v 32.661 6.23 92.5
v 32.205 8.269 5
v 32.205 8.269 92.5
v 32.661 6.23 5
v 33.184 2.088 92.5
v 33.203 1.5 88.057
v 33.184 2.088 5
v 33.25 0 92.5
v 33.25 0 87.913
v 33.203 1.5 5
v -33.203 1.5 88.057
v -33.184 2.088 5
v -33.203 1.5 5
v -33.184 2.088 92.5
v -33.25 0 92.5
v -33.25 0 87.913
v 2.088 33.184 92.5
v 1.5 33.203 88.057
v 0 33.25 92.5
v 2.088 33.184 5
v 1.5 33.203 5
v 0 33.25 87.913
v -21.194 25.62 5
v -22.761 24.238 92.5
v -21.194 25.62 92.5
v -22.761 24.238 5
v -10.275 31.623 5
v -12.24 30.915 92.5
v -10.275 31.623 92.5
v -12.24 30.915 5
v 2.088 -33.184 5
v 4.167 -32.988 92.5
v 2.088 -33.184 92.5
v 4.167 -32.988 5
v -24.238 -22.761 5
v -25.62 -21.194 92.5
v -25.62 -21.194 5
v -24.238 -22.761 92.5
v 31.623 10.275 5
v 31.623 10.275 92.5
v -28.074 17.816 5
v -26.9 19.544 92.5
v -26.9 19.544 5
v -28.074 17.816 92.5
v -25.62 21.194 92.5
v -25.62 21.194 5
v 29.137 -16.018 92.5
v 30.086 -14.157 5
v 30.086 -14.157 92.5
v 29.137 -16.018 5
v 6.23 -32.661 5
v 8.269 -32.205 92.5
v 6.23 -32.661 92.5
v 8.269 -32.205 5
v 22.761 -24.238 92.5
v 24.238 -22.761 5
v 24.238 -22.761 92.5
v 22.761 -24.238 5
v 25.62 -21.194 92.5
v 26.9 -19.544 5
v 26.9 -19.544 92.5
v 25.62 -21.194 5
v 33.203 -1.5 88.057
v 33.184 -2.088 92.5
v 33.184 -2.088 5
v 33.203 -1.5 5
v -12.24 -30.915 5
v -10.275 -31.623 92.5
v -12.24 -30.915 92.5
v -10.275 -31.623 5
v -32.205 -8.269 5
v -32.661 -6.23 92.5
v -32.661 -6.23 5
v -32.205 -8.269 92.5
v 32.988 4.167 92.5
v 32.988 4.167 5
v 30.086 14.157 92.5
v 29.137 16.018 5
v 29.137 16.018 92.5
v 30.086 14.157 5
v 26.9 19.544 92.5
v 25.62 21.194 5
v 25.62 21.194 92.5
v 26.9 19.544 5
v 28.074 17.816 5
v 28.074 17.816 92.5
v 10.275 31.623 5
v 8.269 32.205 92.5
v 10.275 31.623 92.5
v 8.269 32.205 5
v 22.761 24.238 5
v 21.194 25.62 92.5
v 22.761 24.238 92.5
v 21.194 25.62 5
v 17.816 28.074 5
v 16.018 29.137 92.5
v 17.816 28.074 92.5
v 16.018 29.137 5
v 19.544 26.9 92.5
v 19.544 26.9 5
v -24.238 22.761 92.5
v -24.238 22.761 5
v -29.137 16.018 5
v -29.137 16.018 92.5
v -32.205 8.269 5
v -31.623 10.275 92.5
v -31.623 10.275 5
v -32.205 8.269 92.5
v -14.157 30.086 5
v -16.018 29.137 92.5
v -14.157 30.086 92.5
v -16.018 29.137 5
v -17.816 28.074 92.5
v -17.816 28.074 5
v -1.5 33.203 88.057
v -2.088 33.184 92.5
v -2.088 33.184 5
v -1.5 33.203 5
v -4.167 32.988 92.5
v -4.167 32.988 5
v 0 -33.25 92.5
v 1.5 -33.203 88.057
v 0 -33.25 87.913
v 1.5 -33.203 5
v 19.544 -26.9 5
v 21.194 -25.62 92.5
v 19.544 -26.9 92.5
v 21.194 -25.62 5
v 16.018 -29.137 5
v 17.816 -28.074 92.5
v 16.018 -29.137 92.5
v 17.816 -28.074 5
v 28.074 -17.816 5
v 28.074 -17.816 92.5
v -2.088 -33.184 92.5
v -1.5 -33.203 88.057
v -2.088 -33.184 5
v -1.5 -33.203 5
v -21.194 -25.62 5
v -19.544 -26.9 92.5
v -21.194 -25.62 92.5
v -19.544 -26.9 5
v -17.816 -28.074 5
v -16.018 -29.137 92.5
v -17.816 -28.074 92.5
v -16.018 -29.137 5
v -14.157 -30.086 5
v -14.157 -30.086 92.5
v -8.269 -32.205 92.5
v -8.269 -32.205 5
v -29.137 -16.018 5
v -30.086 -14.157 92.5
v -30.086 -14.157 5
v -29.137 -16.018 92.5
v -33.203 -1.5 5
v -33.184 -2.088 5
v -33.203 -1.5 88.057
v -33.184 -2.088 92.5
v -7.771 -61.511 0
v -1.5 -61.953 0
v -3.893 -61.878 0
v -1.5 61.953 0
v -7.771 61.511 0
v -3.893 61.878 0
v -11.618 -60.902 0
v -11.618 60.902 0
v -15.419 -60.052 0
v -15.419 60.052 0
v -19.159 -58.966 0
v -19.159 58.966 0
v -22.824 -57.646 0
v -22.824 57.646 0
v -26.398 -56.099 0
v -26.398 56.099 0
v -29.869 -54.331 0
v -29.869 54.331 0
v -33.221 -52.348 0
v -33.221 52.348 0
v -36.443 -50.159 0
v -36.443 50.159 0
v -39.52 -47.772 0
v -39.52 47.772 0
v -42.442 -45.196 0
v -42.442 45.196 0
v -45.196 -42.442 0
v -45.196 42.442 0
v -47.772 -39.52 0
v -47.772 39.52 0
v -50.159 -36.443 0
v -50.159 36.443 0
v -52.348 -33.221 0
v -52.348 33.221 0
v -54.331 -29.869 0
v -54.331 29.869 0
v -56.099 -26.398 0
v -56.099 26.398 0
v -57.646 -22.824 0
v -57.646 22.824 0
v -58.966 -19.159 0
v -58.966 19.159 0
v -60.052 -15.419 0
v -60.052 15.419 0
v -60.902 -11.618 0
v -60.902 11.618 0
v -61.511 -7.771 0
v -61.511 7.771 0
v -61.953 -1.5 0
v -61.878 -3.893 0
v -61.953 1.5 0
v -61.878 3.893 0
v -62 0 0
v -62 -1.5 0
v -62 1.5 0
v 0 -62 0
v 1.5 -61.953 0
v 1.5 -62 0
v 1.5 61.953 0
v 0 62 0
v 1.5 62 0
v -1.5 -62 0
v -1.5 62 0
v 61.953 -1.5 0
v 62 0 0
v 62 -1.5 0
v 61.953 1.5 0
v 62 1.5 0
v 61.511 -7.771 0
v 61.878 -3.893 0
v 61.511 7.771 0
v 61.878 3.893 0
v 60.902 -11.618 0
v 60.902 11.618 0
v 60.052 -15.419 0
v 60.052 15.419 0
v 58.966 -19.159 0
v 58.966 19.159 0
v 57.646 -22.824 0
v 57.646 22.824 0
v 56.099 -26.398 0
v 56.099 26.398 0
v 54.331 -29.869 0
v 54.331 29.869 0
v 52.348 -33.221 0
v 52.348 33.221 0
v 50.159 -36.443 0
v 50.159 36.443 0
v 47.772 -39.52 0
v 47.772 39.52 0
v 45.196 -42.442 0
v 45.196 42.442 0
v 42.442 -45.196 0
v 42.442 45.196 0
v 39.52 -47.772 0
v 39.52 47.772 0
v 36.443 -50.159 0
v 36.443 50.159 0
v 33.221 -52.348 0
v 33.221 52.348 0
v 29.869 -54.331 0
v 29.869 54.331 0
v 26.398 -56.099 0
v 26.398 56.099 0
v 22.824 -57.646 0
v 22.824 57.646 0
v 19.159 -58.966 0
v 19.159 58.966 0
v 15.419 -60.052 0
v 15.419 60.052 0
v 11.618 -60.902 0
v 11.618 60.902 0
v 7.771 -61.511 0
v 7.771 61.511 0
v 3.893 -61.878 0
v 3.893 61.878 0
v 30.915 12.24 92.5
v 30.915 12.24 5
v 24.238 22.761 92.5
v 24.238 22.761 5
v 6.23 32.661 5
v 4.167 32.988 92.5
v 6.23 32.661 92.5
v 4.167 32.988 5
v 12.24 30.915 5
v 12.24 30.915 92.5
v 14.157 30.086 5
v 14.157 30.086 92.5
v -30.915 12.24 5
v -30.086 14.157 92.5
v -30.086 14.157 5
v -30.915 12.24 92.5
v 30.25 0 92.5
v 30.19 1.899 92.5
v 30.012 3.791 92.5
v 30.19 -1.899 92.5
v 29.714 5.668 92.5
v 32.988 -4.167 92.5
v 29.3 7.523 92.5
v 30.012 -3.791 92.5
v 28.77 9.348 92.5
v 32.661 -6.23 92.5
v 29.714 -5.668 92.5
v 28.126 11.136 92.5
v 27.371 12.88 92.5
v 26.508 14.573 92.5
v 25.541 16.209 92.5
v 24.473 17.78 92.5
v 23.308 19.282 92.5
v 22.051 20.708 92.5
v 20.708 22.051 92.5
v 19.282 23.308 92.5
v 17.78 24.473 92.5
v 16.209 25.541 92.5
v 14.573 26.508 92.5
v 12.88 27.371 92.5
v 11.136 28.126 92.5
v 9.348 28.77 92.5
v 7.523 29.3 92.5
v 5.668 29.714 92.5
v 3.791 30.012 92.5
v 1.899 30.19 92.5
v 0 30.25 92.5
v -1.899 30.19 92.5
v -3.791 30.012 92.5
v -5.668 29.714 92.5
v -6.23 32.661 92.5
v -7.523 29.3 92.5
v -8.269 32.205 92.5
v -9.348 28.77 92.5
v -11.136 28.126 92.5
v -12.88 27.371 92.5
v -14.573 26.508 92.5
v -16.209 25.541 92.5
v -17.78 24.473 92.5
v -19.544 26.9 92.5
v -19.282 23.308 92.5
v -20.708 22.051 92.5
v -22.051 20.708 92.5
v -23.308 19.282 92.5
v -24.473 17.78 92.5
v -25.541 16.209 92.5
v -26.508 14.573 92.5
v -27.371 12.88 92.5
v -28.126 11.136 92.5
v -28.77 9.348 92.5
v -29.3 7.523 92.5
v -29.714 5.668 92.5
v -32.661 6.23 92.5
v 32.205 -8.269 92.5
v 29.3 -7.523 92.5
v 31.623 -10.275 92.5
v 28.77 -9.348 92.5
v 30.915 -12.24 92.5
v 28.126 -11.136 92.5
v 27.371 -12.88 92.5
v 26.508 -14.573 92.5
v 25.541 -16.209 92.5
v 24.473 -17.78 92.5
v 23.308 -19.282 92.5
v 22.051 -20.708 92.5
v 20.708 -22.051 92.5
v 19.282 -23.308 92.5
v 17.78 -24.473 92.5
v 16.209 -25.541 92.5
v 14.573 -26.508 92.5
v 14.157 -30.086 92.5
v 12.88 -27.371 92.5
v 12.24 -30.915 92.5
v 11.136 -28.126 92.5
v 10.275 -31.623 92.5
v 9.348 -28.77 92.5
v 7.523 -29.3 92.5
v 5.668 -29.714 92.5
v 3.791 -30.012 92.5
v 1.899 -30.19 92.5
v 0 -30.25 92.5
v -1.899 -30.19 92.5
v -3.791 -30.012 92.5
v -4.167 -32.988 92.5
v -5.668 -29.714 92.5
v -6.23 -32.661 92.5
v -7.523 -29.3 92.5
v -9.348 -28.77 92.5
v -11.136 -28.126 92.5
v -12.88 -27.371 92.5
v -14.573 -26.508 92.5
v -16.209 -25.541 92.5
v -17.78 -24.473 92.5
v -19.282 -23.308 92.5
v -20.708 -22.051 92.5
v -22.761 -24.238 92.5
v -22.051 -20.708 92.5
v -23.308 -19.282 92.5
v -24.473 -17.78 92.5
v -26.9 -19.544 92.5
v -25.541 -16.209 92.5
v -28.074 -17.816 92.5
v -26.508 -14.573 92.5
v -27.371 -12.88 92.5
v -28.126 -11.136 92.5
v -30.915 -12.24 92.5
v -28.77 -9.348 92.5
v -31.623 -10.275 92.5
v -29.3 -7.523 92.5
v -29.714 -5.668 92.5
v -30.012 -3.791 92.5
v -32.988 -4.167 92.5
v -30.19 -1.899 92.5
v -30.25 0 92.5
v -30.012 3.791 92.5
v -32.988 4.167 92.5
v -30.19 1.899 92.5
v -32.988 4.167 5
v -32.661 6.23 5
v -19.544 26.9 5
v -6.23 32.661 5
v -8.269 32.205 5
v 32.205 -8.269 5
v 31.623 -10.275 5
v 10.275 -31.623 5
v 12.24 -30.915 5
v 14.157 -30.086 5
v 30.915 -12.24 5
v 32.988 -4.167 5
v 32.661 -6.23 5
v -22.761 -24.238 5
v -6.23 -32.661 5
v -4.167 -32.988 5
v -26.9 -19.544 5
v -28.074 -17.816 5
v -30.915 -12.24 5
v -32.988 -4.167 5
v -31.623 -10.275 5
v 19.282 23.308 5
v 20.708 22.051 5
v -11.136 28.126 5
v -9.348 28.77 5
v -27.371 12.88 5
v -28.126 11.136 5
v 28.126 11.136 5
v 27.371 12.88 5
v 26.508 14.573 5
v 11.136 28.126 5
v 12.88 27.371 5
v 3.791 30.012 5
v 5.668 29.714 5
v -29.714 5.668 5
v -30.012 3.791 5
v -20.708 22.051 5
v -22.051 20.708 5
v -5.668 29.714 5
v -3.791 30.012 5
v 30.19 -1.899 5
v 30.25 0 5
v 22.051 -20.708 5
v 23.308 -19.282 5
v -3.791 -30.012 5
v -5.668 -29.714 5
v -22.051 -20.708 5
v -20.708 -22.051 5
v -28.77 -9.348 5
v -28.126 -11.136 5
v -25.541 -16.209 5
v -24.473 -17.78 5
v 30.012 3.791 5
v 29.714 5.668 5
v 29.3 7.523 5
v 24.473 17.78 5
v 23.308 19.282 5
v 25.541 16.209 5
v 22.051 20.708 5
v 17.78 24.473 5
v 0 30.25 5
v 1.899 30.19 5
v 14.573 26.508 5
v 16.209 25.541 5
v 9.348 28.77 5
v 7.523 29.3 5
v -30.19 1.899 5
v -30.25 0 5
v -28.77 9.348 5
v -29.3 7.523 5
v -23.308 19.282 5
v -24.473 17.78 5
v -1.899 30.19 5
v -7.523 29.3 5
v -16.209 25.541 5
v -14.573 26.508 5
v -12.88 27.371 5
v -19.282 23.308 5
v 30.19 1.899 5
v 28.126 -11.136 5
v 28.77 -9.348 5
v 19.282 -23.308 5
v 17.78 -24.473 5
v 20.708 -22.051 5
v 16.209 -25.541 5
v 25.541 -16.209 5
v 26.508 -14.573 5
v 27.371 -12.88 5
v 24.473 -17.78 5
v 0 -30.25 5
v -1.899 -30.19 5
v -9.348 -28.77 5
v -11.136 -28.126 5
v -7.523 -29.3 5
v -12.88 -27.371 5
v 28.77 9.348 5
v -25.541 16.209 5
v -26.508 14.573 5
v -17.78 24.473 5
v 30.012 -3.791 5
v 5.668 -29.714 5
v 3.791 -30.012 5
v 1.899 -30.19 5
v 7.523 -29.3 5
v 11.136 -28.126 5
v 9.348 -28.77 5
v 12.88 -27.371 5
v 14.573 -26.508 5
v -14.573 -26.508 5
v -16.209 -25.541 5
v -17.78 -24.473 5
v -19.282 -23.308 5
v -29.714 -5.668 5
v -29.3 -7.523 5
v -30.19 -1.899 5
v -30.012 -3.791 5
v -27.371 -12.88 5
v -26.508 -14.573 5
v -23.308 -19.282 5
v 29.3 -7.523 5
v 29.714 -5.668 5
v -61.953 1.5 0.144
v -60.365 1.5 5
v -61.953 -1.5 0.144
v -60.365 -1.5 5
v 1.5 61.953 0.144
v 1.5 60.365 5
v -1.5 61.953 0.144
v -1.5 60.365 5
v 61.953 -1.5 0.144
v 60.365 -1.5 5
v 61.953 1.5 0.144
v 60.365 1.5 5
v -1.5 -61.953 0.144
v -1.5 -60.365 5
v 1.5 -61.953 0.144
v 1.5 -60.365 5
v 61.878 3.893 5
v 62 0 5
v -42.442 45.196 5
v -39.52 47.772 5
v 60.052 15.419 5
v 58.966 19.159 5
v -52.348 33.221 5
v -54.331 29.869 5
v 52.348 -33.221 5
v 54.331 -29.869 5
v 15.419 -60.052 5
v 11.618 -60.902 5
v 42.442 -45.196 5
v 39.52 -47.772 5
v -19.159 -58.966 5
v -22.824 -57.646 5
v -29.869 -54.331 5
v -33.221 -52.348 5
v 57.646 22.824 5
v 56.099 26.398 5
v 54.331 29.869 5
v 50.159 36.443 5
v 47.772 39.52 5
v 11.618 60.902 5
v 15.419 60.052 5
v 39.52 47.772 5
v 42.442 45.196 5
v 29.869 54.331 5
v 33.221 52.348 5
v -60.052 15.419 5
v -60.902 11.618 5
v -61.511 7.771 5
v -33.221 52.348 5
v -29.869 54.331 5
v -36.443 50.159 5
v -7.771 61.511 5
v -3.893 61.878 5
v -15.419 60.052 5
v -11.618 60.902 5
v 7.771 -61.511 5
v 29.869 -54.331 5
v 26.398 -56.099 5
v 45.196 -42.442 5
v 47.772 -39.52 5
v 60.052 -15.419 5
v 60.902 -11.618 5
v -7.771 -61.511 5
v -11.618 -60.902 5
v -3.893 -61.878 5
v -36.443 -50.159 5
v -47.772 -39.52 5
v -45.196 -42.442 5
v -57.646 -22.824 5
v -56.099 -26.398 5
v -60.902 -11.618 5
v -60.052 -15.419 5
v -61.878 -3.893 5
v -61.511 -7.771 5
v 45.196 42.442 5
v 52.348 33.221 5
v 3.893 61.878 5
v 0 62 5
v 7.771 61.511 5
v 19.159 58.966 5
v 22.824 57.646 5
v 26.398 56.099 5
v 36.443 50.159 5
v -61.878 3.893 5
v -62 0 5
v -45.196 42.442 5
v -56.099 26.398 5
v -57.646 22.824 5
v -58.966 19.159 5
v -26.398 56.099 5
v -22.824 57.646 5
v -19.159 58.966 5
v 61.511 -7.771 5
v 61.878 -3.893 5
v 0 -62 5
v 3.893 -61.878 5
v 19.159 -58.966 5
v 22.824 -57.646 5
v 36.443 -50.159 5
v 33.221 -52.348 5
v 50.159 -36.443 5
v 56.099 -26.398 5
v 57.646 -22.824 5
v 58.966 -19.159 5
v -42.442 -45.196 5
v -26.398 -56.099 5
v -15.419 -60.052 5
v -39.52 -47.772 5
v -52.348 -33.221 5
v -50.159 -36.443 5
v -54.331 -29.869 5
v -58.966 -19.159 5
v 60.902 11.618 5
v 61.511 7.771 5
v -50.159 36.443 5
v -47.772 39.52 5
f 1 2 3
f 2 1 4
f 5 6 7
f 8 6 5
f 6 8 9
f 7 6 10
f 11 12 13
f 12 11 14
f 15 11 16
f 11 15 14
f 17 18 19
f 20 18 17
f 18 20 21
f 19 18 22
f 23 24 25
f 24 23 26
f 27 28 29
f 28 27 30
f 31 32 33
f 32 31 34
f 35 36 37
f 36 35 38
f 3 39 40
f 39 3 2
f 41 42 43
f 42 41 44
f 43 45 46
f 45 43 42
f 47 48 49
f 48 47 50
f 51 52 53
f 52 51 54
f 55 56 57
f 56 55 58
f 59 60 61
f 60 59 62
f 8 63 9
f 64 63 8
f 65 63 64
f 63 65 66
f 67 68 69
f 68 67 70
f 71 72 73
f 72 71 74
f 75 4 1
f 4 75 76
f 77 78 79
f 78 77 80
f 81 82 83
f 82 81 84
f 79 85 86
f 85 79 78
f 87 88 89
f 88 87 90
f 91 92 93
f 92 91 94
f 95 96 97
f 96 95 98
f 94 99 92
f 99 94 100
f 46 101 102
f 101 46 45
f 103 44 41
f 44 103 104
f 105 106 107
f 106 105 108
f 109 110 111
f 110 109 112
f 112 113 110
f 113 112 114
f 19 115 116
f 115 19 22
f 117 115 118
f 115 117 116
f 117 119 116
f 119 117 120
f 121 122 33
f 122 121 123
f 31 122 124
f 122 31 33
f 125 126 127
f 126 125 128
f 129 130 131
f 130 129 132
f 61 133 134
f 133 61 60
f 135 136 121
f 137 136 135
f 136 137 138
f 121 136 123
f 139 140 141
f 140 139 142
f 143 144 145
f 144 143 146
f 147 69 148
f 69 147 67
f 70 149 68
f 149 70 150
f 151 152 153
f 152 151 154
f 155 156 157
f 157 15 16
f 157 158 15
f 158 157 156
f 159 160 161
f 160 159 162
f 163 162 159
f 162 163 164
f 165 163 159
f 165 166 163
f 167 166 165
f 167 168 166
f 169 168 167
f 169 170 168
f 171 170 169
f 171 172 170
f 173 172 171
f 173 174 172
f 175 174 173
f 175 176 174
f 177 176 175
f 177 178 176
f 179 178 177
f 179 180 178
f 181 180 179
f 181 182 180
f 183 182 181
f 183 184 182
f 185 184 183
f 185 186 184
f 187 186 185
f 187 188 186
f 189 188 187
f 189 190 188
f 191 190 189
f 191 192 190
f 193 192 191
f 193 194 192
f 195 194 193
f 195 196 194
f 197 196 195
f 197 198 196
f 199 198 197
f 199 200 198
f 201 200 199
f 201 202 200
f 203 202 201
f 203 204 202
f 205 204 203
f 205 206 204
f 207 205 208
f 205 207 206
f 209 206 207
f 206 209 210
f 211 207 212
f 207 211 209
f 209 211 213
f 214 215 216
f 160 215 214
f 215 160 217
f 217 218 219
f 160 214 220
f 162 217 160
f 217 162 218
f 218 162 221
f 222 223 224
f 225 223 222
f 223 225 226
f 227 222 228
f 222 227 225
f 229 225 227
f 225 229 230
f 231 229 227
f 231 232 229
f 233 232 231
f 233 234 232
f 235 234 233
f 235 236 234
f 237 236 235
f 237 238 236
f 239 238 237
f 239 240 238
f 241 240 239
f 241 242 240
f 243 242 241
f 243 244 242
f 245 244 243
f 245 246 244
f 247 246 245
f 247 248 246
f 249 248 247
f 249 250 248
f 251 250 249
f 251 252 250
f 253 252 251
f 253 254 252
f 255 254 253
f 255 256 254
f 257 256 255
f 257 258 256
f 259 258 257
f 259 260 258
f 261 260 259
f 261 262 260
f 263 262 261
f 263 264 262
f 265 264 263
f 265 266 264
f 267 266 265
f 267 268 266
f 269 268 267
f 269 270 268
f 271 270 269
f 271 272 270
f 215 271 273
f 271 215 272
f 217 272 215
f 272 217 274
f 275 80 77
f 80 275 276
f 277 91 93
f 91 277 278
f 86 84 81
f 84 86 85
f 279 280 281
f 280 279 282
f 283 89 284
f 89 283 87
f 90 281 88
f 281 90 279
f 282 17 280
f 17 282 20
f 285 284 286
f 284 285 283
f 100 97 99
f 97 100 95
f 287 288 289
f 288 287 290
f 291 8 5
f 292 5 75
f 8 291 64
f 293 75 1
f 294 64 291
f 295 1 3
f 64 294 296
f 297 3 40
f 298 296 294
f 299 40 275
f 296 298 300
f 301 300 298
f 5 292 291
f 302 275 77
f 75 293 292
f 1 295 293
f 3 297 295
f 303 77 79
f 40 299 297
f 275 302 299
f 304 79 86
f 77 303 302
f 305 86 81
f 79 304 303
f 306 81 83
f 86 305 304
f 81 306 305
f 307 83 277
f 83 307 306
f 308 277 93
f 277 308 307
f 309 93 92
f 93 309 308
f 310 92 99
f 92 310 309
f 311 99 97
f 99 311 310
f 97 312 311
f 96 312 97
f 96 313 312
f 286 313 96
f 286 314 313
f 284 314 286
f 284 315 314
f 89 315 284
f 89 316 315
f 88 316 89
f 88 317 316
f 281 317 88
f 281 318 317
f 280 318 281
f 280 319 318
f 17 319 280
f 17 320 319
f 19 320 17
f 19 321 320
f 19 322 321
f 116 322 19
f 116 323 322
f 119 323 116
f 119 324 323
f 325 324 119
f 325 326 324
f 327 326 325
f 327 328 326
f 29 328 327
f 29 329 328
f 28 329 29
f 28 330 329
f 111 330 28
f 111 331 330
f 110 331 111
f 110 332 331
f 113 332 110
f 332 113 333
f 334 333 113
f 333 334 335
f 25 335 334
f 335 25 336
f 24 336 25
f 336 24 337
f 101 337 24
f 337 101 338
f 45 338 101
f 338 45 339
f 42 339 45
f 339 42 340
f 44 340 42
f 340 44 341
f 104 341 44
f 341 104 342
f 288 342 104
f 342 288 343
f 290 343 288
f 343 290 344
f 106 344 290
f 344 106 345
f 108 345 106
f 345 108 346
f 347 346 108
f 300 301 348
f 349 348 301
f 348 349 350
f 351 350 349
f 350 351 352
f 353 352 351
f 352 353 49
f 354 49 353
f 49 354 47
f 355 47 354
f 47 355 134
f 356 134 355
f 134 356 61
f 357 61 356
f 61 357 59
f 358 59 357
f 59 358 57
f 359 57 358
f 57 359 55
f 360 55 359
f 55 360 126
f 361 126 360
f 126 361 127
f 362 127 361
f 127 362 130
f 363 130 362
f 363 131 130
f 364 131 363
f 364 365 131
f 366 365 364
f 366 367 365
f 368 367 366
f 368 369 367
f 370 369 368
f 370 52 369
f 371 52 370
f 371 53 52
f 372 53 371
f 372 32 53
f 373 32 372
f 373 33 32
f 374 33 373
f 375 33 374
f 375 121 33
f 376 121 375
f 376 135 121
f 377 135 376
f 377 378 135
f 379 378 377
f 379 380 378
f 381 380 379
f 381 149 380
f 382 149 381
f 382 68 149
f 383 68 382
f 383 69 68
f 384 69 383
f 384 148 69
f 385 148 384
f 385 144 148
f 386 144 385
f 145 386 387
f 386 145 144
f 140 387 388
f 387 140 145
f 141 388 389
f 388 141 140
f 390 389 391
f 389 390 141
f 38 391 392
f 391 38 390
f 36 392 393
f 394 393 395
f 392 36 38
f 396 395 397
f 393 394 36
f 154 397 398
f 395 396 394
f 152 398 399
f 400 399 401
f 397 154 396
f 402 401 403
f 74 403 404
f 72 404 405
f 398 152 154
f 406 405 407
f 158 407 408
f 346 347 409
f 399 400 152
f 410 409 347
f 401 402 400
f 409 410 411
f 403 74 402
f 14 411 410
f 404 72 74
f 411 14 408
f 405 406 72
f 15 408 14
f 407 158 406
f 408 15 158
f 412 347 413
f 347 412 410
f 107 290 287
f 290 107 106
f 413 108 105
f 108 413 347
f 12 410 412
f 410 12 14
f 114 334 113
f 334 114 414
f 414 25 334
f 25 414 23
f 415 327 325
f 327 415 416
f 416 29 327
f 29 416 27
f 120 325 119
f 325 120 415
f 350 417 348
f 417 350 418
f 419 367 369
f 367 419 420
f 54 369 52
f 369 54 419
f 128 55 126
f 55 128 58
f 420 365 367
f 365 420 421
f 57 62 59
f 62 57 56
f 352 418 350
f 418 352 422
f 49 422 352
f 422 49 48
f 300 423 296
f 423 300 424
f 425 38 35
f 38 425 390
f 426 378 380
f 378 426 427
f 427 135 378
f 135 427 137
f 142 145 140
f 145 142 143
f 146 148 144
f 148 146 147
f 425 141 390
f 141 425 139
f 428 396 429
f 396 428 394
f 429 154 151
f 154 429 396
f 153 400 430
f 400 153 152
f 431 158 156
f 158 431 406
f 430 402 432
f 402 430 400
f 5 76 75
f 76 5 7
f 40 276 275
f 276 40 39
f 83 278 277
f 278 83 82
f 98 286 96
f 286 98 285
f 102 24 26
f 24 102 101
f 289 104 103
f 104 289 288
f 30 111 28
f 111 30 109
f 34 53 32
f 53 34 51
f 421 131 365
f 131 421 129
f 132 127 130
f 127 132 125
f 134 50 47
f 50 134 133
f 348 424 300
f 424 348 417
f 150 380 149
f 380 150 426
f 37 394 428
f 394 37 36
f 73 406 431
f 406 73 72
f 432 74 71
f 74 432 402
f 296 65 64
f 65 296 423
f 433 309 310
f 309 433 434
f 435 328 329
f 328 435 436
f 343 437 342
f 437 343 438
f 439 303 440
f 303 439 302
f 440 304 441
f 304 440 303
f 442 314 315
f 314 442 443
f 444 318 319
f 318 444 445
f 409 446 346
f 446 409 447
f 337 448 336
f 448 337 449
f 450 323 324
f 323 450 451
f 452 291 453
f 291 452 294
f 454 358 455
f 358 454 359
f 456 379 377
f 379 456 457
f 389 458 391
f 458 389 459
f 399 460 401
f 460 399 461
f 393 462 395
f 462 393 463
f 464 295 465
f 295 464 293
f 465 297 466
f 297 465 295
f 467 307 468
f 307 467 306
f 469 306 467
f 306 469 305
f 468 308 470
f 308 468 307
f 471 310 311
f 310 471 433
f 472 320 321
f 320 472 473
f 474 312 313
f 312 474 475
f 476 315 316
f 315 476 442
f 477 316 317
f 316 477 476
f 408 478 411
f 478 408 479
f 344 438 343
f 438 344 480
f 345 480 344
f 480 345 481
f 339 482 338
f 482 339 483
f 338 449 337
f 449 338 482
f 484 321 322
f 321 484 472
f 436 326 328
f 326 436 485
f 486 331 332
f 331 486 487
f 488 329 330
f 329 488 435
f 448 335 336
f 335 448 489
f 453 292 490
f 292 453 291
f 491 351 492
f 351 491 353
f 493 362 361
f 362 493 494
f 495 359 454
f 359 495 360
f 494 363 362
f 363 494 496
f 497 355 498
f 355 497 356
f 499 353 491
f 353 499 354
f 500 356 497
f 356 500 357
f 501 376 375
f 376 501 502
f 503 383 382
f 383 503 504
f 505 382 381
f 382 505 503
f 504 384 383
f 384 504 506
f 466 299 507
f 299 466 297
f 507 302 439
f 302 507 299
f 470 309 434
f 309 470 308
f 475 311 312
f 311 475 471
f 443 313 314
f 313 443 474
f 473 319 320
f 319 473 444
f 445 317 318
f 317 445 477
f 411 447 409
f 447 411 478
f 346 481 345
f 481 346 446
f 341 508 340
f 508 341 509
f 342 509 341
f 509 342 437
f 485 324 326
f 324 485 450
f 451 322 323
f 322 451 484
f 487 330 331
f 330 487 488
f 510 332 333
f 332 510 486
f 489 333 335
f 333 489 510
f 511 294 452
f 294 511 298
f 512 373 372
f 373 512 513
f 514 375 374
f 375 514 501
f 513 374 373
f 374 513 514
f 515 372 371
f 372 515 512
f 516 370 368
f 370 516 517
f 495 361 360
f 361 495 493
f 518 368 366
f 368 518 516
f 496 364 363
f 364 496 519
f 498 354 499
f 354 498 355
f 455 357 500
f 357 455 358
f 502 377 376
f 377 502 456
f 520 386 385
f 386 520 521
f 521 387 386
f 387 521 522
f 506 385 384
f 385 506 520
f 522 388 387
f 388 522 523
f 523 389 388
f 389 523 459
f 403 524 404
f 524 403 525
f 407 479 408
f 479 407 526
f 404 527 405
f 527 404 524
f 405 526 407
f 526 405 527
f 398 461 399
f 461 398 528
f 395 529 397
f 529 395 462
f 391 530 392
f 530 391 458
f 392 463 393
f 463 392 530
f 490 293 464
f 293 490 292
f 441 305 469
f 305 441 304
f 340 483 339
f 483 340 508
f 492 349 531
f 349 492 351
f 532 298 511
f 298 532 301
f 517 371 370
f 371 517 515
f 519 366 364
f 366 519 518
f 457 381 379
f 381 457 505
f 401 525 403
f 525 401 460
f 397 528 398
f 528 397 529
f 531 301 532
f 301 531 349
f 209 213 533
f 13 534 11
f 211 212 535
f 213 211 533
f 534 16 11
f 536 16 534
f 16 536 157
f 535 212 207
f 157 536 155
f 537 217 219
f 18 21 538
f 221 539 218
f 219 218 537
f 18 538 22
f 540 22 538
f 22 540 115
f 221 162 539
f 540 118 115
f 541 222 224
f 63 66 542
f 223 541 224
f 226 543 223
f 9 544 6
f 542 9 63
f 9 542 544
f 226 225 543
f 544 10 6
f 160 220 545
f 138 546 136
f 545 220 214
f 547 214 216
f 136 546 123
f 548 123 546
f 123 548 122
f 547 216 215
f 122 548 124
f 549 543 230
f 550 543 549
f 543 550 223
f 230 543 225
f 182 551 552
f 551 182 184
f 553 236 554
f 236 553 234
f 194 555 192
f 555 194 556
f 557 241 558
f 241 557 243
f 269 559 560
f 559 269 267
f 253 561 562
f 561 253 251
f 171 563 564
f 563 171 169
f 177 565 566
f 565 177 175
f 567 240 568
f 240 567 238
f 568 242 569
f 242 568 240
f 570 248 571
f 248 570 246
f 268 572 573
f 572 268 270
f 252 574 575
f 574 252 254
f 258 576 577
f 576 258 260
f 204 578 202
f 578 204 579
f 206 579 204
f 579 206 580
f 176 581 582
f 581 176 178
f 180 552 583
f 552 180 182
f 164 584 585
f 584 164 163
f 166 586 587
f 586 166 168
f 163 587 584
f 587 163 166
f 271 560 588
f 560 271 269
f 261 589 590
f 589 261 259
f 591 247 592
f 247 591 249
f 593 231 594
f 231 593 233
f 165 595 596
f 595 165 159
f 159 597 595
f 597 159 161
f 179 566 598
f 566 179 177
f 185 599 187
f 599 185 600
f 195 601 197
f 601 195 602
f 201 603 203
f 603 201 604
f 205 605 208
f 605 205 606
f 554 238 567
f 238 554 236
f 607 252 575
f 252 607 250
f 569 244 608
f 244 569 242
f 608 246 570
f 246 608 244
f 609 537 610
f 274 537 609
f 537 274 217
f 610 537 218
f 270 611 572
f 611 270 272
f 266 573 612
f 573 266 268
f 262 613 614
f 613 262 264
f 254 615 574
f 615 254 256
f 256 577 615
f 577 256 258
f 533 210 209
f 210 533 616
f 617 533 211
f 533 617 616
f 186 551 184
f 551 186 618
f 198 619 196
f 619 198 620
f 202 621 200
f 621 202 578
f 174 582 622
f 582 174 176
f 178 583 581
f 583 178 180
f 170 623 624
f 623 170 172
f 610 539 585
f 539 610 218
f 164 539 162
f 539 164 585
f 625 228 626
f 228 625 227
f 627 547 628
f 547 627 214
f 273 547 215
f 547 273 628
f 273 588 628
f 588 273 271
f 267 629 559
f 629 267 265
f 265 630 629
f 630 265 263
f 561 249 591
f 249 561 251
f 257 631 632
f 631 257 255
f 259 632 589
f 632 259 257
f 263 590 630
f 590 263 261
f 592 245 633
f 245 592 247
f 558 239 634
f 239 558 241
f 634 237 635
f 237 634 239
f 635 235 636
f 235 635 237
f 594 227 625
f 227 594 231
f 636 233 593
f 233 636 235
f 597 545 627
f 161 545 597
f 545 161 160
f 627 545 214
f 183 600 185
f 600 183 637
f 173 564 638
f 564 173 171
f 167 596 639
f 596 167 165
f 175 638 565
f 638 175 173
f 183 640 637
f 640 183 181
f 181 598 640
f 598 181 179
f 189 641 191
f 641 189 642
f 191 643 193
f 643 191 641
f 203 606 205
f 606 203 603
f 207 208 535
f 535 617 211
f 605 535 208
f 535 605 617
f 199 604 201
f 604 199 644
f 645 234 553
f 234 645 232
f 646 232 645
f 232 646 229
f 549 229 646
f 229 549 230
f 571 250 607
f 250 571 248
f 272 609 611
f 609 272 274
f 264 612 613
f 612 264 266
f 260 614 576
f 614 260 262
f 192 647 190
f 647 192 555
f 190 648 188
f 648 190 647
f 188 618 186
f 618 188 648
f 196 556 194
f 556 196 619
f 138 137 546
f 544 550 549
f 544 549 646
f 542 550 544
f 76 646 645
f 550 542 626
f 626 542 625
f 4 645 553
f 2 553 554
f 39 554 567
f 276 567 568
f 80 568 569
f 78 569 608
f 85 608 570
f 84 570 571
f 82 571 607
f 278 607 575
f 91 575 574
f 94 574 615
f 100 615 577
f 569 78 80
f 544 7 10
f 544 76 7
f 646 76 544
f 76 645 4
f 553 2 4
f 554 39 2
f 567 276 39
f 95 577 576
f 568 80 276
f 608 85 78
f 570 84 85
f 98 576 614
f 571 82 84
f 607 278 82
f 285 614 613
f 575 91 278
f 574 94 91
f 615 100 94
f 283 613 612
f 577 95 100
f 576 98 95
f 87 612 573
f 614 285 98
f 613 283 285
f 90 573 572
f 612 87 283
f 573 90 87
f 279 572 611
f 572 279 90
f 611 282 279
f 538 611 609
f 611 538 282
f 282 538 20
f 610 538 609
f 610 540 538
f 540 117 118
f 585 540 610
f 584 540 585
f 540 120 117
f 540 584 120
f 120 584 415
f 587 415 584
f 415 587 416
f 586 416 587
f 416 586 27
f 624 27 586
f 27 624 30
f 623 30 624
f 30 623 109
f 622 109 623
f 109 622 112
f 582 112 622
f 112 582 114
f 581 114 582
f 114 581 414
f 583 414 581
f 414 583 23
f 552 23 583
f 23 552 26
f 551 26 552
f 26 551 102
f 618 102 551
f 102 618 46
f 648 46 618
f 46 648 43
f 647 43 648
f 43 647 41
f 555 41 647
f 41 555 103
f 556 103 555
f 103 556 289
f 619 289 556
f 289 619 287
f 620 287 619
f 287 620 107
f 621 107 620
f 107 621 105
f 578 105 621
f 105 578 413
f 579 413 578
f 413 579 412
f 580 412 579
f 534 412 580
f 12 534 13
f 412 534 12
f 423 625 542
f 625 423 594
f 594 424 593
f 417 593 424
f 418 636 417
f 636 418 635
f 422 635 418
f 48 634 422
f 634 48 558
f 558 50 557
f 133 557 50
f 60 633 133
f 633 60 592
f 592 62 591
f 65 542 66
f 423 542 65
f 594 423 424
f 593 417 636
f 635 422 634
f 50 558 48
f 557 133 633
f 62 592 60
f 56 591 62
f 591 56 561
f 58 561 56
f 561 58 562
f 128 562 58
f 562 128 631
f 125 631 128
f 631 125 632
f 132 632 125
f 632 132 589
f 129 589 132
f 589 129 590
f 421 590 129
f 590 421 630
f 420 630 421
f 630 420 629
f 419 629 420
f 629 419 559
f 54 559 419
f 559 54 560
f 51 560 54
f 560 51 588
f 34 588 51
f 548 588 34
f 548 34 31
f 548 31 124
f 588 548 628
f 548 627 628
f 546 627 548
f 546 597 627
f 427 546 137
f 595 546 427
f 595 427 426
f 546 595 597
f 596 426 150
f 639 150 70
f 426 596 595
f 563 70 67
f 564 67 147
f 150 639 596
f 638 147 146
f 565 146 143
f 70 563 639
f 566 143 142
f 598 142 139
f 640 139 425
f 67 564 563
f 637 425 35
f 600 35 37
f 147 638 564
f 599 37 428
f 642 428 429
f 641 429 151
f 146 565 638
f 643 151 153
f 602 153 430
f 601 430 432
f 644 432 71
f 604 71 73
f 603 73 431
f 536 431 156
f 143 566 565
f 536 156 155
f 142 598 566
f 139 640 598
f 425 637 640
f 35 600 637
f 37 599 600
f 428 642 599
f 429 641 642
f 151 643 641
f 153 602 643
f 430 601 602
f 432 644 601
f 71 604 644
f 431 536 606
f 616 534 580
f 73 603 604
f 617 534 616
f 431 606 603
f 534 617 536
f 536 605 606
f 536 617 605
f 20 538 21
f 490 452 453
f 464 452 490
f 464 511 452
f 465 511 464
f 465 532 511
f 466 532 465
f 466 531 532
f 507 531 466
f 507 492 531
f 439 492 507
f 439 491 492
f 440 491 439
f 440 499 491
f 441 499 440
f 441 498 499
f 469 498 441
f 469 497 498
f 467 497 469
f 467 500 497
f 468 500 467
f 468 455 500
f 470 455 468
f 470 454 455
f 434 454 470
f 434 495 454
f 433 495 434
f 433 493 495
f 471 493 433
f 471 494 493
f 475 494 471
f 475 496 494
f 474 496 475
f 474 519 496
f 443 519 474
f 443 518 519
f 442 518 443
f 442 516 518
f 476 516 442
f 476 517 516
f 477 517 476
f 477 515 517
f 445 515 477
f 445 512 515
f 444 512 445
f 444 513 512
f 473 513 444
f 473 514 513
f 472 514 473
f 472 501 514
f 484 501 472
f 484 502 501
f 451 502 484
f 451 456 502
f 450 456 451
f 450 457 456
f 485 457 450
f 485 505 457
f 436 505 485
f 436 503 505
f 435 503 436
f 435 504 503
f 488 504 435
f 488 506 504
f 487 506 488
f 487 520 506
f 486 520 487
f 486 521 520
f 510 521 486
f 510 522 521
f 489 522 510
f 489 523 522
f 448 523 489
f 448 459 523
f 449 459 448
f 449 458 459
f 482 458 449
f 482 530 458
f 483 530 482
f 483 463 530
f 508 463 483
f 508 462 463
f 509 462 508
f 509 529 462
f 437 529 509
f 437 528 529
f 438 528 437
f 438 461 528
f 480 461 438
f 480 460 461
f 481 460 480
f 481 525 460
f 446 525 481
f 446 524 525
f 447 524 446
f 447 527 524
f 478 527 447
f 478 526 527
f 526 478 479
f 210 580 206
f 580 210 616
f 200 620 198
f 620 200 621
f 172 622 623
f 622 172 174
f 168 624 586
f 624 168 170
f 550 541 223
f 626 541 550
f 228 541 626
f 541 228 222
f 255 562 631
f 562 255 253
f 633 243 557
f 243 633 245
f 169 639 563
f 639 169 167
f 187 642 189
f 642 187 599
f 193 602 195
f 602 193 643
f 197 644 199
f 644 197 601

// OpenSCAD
// Andre Betz
// github@AndreBetz.de
// SodaStream Stand Holder
// Zwieselbrau.de

WandD       =   3;
BodenH      =   5;
SodaBottleD =  60.5;
SodaBottleH = 370;
SodaStandH  = SodaBottleH / 4;

$fn=100;

translate([(-SodaBottleD-WandD)/2,0,0])
    rotate(a=[90,-90,0])
        linear_extrude(height = WandD, center = true, convexity = 10, twist = 0)
            polygon(points=[[0,0],[SodaStandH,0],[0,SodaBottleD/2]], paths=[[0,1,2]]);
translate([0,(SodaBottleD+WandD)/2,0])
    rotate(a=[0,-90,0])
        linear_extrude(height = WandD, center = true, convexity = 10, twist = 0)
            polygon(points=[[0,0],[SodaStandH,0],[0,SodaBottleD/2]], paths=[[0,1,2]]);
translate([(SodaBottleD+WandD)/2,0,0])
    rotate(a=[-90,-90,0])
        linear_extrude(height = WandD, center = true, convexity = 10, twist = 0)
            polygon(points=[[0,0],[SodaStandH,0],[0,SodaBottleD/2]], paths=[[0,1,2]]);
translate([0,(-SodaBottleD-WandD)/2,0])
    rotate(a=[180,-90,0])
        linear_extrude(height = WandD, center = true, convexity = 10, twist = 0)
            polygon(points=[[0,0],[SodaStandH,0],[0,SodaBottleD/2]], paths=[[0,1,2]]);
    

difference() {
    cylinder(h=SodaStandH, r1=SodaBottleD/2+WandD, r2=SodaBottleD/2+WandD, center=false);
    translate([0,0,-1])
        cylinder(h=SodaStandH+2, r1=SodaBottleD/2, r2=SodaBottleD/2, center=false);
}

cylinder(h=BodenH, r1=SodaBottleD+WandD/2, r2=SodaBottleD+WandD/2, center=false);
